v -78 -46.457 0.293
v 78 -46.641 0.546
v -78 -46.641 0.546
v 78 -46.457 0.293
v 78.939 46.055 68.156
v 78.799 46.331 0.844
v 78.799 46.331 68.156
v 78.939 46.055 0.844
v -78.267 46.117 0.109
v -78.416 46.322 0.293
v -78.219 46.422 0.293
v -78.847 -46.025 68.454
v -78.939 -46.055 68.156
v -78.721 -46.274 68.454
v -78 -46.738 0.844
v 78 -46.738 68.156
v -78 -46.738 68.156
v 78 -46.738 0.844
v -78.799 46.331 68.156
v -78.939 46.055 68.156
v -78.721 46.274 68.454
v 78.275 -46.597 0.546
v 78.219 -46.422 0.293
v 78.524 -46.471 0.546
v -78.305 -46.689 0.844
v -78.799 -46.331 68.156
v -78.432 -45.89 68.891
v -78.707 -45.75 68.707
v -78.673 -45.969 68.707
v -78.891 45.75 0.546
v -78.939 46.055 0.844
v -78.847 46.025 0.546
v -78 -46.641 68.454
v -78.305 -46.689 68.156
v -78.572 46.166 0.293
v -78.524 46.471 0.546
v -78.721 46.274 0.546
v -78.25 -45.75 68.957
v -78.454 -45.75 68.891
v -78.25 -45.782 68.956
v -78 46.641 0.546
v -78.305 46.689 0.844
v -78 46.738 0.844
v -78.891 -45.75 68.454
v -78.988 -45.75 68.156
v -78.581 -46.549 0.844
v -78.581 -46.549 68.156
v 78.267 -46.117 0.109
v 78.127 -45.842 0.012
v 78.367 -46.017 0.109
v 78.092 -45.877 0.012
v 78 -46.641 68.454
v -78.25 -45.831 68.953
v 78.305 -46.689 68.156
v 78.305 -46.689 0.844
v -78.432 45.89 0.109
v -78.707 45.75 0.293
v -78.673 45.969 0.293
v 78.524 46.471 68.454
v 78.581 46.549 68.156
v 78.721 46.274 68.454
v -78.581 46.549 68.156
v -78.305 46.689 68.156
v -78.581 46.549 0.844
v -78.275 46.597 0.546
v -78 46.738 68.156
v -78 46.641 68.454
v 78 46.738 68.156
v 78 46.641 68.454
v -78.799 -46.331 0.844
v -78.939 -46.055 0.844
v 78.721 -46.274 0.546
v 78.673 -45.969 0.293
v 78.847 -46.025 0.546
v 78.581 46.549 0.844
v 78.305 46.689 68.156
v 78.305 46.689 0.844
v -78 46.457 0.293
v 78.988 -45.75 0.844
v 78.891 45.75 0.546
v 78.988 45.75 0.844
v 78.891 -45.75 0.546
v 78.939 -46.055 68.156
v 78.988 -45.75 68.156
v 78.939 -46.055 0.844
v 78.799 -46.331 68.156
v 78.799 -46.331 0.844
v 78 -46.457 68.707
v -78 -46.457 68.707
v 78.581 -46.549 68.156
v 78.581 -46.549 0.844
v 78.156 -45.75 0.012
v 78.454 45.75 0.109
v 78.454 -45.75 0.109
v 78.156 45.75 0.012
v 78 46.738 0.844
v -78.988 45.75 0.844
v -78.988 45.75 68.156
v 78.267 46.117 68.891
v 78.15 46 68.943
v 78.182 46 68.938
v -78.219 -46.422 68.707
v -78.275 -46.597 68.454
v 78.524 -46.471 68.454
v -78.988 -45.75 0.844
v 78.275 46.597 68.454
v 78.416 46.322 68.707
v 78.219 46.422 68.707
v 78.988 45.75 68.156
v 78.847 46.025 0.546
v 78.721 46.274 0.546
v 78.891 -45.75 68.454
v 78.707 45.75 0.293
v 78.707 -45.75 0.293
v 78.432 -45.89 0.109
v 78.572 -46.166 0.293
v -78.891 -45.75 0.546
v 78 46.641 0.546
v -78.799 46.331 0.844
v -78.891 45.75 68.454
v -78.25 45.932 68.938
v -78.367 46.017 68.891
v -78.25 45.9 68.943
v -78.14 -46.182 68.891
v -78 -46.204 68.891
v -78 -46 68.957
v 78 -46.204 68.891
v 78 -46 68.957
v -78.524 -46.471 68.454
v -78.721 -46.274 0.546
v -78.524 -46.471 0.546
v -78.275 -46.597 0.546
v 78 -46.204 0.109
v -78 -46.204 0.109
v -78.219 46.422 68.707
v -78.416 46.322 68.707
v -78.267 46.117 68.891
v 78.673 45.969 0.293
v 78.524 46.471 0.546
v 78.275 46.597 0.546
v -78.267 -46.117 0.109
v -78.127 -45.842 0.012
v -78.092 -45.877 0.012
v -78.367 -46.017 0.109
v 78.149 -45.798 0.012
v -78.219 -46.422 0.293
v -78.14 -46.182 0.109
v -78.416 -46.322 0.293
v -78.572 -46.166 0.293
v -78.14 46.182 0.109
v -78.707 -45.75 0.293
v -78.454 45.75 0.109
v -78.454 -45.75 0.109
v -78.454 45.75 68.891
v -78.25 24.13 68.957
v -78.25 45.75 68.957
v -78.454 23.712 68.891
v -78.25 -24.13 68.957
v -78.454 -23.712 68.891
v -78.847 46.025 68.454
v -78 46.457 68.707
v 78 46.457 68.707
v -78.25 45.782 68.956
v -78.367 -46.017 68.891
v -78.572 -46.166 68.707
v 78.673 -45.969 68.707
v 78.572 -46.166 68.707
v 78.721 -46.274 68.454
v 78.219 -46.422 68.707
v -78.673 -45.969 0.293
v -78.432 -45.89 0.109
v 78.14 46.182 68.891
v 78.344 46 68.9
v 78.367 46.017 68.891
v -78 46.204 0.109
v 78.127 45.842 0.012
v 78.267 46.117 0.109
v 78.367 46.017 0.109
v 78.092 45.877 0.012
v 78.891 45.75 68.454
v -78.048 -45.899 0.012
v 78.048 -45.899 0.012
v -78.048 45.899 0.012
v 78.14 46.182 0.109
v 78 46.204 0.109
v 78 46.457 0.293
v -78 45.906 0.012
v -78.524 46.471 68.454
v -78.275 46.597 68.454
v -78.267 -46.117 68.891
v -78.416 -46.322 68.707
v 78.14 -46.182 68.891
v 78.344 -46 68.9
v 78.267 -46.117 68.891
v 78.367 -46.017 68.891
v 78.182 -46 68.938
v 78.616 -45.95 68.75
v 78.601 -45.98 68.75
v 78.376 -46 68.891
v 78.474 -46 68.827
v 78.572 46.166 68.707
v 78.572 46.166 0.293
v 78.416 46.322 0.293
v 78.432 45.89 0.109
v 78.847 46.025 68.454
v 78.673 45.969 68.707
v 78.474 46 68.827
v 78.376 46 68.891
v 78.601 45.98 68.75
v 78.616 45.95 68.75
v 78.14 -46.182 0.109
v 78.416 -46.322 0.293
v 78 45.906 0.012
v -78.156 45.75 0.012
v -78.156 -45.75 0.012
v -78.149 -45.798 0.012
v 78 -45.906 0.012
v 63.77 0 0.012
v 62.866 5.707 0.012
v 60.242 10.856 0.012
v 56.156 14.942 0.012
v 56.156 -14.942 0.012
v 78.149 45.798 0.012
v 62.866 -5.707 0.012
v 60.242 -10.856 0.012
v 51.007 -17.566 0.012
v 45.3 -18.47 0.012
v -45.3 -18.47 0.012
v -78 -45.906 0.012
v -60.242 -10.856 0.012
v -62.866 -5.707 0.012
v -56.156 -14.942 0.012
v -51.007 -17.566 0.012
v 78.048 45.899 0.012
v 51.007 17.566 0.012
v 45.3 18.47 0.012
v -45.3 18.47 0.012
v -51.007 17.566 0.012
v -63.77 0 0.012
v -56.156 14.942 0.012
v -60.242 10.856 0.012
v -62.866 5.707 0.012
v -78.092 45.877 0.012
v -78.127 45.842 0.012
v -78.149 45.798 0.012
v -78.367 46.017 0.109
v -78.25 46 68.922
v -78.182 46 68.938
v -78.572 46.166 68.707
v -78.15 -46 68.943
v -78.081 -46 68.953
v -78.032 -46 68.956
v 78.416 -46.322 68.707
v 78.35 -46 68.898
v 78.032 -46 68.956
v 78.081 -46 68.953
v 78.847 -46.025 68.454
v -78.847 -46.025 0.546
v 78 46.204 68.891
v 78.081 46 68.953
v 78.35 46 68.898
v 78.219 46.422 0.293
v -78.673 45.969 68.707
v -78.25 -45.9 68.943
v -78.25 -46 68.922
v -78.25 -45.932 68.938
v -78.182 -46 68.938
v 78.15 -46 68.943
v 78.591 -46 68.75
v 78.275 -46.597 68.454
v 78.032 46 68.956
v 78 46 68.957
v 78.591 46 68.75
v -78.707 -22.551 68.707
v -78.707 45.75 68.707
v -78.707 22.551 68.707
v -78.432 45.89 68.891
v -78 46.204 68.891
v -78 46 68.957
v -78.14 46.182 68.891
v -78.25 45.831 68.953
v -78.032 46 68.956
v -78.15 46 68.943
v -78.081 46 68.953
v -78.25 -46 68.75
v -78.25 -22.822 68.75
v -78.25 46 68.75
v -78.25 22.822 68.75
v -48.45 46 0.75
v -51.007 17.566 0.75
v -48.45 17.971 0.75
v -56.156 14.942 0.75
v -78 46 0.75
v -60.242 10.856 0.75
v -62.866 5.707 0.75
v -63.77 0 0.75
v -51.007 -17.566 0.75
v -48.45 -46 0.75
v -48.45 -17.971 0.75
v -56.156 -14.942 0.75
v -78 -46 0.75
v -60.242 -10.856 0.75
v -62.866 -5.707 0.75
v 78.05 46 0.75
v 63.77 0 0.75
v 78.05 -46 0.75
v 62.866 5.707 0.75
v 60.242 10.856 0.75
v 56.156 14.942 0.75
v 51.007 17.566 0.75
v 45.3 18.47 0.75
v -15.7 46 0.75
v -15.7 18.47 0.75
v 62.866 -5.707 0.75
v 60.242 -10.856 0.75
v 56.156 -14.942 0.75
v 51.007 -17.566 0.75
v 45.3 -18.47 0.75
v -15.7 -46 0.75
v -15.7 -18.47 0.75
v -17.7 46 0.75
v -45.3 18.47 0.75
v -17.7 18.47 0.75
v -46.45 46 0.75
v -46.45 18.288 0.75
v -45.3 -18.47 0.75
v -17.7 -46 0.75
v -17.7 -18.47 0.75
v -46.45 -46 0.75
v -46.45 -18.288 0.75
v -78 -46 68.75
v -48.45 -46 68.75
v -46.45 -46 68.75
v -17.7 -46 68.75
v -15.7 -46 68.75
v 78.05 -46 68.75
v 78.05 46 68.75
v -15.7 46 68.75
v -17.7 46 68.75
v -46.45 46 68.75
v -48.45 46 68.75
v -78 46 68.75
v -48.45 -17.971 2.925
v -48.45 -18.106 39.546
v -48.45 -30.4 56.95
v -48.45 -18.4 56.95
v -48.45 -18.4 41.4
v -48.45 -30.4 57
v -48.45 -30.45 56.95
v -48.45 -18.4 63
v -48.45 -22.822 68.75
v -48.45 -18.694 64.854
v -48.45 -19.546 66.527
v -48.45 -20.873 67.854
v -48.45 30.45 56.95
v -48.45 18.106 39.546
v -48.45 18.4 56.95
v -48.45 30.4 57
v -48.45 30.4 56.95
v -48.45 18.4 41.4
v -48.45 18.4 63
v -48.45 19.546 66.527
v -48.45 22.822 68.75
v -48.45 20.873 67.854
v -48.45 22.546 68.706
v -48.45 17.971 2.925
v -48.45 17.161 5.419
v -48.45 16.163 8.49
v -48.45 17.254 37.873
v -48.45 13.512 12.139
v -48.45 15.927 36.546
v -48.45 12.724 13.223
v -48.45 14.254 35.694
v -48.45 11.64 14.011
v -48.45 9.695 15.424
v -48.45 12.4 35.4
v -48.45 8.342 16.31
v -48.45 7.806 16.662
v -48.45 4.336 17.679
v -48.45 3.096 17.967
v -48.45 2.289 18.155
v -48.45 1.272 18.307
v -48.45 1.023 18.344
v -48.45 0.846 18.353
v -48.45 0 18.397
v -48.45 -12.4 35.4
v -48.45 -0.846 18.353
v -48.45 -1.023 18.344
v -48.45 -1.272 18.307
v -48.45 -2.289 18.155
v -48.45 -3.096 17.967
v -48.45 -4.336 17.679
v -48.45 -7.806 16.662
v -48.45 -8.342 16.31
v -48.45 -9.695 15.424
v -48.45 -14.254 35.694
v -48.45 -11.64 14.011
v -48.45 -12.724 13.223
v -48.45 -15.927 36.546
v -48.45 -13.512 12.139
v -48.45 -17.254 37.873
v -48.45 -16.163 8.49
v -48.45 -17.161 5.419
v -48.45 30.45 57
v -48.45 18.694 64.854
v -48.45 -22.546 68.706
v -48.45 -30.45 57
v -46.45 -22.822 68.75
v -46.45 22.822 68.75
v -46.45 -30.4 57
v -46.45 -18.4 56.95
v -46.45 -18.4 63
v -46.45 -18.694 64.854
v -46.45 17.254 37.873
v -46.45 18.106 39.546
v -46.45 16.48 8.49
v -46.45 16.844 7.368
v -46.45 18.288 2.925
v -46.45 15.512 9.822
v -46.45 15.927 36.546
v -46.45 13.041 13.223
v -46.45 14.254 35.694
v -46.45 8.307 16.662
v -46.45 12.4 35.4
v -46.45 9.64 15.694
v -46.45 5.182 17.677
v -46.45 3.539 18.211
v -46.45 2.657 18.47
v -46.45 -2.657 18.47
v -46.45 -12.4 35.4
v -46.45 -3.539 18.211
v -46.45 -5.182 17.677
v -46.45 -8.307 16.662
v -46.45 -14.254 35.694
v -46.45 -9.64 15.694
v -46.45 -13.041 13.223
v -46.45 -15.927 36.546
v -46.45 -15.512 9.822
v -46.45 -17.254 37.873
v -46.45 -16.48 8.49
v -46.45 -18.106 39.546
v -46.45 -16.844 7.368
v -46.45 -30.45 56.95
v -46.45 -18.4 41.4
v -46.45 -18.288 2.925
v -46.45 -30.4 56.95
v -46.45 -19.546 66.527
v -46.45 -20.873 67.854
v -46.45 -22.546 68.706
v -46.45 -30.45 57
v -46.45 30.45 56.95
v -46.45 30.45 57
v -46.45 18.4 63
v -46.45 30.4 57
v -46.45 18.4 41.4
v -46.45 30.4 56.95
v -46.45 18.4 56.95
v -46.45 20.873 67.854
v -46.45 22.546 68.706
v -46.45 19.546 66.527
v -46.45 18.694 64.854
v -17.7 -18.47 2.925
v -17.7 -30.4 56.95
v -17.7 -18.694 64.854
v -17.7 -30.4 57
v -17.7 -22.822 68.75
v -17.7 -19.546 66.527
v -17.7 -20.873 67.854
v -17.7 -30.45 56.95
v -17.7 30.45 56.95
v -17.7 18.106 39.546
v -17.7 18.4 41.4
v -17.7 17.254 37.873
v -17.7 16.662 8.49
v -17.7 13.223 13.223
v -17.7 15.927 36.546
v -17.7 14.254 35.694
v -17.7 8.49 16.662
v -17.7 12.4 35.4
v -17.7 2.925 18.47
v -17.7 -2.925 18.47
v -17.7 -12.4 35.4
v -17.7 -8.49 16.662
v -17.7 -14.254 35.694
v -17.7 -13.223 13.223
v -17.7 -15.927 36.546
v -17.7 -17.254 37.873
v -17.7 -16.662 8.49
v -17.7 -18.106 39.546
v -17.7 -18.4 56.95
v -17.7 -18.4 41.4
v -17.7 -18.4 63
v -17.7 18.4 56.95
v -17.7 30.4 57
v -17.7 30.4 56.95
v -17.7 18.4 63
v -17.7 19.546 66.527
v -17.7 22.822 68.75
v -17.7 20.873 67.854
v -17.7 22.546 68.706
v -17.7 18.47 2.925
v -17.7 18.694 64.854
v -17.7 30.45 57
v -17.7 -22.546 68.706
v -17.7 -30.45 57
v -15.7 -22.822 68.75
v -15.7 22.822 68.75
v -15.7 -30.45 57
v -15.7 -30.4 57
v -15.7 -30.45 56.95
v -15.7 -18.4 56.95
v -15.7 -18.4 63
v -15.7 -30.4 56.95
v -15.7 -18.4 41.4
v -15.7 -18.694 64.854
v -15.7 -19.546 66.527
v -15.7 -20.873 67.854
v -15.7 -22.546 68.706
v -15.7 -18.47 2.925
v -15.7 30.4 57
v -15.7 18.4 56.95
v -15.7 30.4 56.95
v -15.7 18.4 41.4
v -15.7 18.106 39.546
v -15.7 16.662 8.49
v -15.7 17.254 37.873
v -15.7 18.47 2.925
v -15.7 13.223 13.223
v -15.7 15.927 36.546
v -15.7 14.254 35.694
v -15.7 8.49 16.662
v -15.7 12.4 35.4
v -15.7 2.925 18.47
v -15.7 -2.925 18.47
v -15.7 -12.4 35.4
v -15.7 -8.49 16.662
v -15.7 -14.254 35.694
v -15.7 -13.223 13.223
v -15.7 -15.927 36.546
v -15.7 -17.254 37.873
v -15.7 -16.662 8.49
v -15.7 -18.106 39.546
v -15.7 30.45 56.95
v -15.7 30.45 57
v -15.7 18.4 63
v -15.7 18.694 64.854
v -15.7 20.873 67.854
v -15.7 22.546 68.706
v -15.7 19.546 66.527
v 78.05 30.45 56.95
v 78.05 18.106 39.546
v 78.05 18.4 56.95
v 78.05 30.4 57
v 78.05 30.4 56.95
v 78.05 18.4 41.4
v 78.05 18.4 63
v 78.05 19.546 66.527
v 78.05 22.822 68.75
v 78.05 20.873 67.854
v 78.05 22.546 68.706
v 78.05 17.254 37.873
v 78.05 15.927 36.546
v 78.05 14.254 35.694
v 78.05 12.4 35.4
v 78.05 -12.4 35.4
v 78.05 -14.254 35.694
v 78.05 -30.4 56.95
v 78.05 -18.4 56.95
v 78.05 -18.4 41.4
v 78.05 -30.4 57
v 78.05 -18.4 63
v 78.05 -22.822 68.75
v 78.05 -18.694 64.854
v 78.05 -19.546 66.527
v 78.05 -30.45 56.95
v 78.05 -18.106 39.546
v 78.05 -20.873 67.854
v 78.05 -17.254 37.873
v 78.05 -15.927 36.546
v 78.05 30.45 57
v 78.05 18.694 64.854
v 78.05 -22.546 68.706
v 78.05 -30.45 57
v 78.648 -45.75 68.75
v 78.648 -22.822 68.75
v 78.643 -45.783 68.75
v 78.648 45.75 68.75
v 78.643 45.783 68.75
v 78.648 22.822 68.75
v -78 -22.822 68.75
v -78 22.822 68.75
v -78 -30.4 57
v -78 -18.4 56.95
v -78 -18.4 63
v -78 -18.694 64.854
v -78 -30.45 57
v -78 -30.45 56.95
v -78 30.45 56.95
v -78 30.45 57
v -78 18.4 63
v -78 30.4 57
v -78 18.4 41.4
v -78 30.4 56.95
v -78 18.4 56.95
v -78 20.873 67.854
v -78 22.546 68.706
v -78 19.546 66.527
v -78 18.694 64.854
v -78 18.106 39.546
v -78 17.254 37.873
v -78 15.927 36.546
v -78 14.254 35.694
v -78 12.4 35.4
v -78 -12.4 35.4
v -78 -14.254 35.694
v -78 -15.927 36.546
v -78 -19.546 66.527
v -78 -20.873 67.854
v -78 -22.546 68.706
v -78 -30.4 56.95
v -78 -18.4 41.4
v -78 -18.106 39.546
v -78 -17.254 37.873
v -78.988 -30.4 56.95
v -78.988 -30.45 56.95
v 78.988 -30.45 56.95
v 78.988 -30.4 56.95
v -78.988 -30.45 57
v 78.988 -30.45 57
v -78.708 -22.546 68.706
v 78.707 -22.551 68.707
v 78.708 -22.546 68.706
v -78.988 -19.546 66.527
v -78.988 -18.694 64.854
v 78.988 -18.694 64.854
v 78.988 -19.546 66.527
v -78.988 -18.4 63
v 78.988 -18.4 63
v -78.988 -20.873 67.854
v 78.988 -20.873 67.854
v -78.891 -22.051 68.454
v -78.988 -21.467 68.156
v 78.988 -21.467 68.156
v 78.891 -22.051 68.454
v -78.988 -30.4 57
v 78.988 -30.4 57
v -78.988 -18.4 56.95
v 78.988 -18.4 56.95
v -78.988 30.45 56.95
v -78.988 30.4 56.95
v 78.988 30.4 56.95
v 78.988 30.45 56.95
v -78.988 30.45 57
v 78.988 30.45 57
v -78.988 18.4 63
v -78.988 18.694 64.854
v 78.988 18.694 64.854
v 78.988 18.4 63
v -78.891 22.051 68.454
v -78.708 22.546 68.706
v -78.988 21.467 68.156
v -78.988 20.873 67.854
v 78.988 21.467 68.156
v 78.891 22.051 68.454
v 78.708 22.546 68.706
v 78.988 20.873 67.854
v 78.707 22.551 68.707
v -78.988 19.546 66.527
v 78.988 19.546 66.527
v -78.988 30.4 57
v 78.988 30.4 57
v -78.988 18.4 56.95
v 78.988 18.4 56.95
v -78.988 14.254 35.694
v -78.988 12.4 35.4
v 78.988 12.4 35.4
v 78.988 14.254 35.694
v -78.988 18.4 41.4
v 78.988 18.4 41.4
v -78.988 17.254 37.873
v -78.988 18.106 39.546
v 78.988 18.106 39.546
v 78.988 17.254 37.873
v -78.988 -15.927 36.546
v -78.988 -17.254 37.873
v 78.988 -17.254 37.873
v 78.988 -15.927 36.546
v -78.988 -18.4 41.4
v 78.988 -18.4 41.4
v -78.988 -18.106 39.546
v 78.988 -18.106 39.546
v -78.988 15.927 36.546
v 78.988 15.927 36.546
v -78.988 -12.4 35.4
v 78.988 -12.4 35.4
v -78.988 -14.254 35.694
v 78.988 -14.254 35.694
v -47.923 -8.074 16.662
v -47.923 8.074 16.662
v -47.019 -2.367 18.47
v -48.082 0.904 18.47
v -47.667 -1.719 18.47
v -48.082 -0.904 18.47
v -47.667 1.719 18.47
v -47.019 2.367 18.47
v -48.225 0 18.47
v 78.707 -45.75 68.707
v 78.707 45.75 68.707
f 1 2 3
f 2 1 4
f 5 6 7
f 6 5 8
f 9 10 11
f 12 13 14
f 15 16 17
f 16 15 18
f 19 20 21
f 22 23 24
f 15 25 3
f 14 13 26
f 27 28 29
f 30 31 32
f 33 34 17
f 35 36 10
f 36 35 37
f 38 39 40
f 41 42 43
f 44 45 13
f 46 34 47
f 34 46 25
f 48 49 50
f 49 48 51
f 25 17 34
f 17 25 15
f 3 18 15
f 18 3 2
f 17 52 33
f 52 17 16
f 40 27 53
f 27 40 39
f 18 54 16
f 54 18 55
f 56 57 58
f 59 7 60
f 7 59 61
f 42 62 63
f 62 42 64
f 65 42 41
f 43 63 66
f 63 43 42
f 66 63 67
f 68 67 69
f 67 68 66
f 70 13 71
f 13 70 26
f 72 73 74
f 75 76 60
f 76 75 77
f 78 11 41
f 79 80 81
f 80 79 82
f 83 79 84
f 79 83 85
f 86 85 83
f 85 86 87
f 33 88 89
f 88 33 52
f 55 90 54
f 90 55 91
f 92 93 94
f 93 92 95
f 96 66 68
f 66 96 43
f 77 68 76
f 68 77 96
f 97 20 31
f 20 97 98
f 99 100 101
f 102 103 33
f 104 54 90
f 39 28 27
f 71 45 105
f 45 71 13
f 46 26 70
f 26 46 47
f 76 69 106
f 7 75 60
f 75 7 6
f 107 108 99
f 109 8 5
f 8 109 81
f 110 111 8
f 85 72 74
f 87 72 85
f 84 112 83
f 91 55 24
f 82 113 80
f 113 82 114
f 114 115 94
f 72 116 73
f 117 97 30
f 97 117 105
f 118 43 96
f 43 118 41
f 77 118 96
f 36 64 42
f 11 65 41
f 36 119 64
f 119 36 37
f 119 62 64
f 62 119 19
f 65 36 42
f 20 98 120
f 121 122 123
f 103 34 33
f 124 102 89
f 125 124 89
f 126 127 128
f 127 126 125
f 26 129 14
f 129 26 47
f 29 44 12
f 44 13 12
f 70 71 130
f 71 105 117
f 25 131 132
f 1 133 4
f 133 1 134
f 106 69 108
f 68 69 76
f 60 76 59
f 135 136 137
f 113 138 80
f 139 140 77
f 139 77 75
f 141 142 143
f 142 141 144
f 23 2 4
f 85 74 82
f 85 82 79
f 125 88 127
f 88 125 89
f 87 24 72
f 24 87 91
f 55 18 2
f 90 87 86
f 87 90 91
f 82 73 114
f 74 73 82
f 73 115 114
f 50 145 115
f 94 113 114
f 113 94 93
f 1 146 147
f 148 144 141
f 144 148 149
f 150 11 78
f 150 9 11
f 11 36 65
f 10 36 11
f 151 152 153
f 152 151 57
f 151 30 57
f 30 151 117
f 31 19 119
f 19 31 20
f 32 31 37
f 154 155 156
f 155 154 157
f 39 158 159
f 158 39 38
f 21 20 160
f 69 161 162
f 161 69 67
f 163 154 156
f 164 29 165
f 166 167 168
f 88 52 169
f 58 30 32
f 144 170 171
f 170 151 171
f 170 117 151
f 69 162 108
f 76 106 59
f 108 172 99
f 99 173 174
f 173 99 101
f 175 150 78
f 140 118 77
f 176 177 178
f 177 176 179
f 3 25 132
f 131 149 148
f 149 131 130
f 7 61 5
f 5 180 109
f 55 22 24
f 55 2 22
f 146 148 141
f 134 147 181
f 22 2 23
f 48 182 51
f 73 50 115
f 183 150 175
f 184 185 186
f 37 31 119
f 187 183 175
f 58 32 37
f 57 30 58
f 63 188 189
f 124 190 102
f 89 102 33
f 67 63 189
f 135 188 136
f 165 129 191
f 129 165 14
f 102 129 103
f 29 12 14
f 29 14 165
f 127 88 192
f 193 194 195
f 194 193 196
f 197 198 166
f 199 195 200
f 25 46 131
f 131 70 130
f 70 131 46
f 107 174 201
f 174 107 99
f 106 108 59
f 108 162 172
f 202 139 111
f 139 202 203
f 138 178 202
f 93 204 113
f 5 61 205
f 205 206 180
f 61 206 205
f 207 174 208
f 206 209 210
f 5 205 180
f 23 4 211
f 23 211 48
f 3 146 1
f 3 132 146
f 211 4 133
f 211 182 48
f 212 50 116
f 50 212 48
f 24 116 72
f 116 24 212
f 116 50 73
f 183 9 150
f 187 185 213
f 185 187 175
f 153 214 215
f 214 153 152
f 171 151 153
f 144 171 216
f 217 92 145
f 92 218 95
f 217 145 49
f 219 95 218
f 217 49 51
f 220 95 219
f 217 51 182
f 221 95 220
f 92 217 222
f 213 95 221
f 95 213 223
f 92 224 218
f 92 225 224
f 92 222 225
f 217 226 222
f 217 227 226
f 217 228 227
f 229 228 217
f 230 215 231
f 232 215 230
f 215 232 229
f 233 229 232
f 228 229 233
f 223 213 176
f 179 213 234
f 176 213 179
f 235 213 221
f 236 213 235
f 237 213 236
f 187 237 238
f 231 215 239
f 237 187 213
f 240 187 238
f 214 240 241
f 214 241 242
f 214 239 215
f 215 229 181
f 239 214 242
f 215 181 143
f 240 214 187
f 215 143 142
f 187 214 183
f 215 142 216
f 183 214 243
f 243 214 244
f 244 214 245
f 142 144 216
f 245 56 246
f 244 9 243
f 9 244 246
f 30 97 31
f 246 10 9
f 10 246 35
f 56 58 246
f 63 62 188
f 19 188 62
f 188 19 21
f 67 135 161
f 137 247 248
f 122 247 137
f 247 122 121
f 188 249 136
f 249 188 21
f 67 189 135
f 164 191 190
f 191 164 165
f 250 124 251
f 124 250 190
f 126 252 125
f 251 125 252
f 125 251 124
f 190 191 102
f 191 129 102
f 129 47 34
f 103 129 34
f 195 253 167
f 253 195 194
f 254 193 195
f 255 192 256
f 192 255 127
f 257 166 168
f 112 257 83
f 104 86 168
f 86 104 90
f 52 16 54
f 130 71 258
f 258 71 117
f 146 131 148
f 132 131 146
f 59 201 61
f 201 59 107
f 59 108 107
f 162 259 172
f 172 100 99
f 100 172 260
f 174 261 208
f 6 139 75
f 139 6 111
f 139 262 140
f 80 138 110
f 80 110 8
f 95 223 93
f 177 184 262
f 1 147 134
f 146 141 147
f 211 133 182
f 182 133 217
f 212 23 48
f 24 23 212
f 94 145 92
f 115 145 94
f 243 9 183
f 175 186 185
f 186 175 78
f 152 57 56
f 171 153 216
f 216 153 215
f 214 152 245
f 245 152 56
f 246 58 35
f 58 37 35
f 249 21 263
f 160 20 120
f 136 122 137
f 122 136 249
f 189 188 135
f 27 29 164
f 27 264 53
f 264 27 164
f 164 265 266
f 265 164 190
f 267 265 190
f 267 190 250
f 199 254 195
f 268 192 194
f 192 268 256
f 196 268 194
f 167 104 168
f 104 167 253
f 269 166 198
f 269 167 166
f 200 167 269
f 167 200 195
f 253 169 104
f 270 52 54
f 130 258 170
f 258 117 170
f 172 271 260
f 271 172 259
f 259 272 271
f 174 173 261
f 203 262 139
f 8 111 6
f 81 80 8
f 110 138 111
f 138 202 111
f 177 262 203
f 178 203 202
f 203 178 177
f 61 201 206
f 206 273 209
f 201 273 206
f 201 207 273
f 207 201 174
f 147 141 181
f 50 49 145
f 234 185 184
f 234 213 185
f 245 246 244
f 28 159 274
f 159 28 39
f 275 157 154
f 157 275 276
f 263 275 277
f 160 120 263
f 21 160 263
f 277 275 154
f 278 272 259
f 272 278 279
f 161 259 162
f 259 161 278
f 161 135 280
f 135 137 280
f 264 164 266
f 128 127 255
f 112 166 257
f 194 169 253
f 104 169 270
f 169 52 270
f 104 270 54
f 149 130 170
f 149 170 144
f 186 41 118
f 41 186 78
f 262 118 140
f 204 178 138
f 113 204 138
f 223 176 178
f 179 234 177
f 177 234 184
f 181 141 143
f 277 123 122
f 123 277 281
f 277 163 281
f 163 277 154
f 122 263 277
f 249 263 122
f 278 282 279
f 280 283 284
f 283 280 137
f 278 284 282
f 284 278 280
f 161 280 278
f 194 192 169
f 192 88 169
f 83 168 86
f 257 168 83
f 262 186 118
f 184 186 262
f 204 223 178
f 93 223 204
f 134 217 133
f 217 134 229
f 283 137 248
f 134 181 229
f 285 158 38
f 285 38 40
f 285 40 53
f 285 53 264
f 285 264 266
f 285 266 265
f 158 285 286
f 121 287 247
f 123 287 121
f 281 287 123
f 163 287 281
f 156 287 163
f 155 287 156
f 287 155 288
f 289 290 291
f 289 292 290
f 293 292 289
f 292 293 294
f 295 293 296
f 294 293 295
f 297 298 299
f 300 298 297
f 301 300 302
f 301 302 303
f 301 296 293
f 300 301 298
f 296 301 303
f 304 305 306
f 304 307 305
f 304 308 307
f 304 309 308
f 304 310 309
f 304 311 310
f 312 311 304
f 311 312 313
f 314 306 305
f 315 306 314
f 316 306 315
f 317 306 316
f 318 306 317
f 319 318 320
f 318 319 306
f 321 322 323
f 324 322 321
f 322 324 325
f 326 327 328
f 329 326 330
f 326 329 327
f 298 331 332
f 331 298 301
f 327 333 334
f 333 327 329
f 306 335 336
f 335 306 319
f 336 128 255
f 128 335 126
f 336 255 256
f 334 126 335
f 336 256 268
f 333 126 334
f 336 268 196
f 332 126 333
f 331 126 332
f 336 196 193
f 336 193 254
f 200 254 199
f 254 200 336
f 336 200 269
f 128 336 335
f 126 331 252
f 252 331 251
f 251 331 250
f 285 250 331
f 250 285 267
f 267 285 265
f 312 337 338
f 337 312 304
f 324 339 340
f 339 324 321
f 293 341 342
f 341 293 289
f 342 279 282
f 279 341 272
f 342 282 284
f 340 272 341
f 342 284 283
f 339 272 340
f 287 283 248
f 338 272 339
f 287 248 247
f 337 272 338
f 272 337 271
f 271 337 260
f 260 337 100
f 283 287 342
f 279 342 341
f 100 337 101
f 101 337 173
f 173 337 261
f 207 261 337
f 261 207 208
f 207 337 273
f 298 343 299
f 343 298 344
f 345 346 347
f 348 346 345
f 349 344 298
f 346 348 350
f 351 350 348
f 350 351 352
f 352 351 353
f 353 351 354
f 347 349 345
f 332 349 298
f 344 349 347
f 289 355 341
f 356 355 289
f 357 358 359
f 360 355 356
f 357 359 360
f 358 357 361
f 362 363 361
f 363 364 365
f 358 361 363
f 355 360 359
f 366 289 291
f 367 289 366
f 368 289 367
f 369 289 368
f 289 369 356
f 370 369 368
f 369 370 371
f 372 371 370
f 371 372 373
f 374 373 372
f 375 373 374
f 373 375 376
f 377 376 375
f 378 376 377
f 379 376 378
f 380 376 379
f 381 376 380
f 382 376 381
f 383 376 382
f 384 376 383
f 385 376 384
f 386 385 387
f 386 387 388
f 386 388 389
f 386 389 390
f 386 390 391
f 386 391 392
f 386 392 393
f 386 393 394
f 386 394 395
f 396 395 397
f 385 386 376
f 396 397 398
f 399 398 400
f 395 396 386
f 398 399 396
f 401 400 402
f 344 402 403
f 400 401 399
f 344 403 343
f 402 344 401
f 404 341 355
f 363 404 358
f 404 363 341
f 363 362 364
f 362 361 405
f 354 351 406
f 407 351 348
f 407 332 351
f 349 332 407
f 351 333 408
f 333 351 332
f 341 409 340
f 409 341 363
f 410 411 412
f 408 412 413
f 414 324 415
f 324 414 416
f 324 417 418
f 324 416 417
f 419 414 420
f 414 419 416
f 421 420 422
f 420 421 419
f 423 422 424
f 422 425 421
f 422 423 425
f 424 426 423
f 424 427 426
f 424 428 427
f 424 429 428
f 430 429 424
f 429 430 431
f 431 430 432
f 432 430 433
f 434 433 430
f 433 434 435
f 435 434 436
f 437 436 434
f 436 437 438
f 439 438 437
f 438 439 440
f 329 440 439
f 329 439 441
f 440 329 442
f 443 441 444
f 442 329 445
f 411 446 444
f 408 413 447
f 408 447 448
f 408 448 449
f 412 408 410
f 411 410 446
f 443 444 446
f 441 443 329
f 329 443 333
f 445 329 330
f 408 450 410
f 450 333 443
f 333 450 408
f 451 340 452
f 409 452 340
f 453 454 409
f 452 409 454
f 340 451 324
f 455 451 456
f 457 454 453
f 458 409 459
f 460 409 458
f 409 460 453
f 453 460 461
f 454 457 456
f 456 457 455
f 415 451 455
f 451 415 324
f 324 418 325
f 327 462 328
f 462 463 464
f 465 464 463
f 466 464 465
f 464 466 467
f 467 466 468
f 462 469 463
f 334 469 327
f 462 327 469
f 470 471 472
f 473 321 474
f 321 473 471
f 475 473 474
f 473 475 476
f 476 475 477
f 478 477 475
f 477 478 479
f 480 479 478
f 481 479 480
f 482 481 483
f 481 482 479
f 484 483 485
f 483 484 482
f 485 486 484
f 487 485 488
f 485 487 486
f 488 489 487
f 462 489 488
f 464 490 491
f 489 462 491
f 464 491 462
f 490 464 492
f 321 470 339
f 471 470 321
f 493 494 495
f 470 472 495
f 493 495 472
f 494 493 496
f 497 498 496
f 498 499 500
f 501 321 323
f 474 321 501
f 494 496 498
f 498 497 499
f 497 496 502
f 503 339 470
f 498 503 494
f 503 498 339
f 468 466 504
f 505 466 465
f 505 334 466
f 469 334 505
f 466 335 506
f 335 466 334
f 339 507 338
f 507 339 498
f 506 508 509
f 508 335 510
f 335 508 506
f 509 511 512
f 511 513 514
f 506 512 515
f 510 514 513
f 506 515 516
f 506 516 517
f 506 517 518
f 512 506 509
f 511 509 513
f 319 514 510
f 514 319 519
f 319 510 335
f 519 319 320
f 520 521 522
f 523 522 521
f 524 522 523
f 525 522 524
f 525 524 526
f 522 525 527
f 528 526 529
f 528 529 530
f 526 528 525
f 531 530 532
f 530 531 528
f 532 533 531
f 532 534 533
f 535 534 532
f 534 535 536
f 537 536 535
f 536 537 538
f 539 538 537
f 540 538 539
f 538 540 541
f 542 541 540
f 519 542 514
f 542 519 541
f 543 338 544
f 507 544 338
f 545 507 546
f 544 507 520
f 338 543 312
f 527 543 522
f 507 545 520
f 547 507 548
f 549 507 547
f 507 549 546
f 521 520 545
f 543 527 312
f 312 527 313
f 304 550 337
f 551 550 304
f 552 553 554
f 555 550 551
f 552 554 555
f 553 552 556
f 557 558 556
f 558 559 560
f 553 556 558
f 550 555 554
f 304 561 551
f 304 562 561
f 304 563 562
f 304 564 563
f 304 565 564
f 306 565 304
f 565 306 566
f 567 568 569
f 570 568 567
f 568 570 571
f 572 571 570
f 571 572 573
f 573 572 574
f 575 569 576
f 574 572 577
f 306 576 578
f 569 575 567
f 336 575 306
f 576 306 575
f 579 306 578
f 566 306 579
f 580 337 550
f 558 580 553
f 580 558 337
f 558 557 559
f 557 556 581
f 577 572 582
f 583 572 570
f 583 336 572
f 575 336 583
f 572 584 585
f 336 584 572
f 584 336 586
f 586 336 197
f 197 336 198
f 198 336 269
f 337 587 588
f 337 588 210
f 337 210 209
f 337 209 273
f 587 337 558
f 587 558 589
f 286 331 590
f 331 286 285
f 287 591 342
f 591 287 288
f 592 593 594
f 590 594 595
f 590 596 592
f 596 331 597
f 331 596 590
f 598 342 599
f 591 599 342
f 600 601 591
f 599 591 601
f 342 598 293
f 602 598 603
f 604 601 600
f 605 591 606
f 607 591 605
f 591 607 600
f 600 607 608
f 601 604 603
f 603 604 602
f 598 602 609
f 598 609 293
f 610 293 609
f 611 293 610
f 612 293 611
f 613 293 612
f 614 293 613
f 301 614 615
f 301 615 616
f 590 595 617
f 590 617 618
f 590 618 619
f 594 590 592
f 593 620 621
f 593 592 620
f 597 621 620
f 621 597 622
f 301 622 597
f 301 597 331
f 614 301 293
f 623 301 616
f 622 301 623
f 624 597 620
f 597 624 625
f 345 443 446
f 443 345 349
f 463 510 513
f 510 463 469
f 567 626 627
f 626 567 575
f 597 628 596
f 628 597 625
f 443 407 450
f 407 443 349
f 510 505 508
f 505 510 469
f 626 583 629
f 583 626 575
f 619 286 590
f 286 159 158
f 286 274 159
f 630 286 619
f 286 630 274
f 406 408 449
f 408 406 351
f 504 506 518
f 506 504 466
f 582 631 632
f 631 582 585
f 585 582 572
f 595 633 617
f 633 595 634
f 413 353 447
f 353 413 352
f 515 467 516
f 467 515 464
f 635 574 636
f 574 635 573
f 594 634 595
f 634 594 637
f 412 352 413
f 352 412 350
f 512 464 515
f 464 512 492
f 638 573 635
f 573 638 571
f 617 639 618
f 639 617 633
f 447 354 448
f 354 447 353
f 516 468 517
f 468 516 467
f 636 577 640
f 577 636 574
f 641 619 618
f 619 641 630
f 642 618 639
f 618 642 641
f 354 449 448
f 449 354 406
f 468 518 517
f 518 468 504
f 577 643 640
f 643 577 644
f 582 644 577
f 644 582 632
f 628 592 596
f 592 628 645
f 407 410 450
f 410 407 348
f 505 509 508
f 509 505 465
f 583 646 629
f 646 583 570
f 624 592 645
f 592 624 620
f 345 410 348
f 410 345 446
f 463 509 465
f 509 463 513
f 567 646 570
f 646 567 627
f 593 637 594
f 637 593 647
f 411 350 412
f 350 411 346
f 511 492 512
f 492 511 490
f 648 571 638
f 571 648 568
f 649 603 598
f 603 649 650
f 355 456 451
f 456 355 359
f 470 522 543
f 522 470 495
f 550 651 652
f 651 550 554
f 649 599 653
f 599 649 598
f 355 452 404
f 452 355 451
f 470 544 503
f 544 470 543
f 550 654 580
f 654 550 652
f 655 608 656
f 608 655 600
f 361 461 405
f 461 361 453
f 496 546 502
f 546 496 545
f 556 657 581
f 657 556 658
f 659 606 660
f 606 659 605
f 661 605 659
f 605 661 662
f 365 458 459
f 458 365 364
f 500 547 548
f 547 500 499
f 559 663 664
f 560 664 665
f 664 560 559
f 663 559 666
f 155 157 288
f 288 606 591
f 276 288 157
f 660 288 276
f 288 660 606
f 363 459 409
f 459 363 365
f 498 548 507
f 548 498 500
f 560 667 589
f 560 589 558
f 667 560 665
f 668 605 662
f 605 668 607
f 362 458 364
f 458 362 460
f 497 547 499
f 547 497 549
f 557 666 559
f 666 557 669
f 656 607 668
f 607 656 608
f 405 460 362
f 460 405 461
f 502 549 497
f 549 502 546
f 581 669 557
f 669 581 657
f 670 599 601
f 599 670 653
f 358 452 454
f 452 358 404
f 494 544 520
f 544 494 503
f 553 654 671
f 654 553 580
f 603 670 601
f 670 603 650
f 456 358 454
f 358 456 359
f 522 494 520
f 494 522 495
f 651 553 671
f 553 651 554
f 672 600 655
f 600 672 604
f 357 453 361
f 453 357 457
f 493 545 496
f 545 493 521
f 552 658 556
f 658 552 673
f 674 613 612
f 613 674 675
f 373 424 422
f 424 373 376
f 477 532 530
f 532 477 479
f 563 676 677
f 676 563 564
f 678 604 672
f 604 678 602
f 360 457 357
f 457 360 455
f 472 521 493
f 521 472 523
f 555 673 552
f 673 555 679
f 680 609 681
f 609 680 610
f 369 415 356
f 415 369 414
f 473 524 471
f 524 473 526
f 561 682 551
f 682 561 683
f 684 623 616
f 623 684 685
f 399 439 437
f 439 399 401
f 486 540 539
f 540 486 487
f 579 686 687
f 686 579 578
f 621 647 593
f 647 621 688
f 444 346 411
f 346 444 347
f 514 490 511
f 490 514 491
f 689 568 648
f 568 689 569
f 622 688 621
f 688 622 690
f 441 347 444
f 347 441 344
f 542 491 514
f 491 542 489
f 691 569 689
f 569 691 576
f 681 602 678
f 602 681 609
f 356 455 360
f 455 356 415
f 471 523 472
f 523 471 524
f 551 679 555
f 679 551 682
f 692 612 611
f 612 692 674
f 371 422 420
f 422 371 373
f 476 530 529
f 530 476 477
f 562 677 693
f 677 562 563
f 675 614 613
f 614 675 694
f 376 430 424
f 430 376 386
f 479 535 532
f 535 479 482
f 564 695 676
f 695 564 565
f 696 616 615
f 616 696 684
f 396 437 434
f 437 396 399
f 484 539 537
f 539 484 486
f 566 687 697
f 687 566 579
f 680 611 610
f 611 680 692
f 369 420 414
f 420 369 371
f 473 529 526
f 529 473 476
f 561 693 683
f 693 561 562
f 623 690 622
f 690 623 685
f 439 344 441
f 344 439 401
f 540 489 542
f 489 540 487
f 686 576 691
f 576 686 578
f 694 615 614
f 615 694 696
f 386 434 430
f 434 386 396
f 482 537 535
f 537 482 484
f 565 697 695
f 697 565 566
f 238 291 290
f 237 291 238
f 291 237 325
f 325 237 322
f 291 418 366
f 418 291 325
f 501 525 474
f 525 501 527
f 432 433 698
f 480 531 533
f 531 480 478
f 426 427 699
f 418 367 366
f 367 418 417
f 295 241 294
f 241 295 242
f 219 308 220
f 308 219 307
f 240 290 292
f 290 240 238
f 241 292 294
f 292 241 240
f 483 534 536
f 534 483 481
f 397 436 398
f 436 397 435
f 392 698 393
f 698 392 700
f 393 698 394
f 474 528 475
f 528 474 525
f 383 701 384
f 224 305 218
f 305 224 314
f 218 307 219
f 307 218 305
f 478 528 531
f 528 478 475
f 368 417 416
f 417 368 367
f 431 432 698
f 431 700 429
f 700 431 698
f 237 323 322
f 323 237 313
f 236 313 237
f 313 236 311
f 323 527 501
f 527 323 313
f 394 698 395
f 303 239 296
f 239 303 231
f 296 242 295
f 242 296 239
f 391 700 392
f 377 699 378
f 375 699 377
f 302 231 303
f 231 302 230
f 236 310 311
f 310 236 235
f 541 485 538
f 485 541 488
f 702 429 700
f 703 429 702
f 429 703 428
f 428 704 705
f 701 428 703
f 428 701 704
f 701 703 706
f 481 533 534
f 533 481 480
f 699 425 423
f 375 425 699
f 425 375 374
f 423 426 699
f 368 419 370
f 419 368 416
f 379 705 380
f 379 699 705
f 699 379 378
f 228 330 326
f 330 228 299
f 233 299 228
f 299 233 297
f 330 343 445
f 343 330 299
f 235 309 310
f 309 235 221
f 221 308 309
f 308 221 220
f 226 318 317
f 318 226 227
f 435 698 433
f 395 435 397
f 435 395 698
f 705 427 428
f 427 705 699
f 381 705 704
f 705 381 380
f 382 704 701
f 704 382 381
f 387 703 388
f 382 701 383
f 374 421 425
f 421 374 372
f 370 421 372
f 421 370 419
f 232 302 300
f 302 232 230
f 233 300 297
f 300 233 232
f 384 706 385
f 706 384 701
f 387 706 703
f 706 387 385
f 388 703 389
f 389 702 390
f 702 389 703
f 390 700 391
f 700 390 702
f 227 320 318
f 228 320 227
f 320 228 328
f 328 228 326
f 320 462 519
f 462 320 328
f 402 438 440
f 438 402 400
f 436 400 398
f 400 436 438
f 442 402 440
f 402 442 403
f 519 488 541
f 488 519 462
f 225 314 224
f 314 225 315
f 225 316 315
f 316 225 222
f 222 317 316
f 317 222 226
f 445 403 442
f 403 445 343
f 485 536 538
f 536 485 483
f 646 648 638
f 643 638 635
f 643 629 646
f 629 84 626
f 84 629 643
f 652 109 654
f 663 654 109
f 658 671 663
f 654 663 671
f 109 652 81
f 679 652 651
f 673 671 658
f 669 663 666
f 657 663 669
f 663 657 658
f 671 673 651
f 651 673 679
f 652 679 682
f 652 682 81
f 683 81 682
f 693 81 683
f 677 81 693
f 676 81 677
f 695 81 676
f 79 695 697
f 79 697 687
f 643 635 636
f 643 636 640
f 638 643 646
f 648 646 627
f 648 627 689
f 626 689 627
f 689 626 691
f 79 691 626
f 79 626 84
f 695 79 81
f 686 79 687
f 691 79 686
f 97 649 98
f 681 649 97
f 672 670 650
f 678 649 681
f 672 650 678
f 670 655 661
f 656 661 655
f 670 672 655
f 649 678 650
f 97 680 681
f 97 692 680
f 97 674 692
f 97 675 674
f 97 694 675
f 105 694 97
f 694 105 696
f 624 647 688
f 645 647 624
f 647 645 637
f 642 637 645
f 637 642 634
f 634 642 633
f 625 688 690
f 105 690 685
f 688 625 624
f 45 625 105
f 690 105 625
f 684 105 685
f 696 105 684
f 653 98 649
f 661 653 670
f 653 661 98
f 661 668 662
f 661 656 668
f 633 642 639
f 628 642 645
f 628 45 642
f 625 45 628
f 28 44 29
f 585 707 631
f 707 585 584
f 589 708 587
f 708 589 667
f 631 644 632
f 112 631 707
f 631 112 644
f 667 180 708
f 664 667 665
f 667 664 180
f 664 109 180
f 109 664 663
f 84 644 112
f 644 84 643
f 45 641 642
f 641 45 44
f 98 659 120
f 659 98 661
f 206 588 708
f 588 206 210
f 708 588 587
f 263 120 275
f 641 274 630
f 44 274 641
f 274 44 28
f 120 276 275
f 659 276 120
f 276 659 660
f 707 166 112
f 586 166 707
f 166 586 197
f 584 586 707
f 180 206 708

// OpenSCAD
// Width of a single card
CardWidth = 92;    

// Height of a single card
CardHeight = 68;  

// Box Height
BoxHeight = 69; 

// Size of each Card slot
Slots = [30, 30, 95];

// Number of rows of cards
Rows = 1;

// Slant the front of the box 
SlantFront = true;

// Labels for each card slot  (only recommended when Rows=1)
Labels = [];

// Size of botton cutout, % of width
Removal = 0.4;
AccessDepth = 0.4;

// Wall Thickness
gWT = 0.75;

// Roundness
$fn = 20;

function SumList(list, start, end) = (start == end) ? list[start] : list[start] + SumList(list, start+1, end);

module RCube(x,y,z,ipR=4) {
    translate([-x/2,-y/2,0]) hull(){
      translate([ipR,ipR,ipR]) sphere(ipR);
      translate([x-ipR,ipR,ipR]) sphere(ipR);
      translate([ipR,y-ipR,ipR]) sphere(ipR);
      translate([x-ipR,y-ipR,ipR]) sphere(ipR);
      translate([ipR,ipR,z-ipR]) sphere(ipR);
      translate([x-ipR,ipR,z-ipR]) sphere(ipR);
      translate([ipR,y-ipR,z-ipR]) sphere(ipR);
      translate([x-ipR,y-ipR,z-ipR]) sphere(ipR);
      }  
} 



Angle = (((BoxHeight-gWT)/CardHeight) < 1) ? acos((BoxHeight-gWT)/CardHeight) : 0;
  
//Wall space for tilted wall
gWS =  gWT / cos(Angle);
BoxWidth = CardWidth + 2*gWT;

SlotsAdj = [for (i = [0:len(Slots)-1]) Slots[i]/cos(Angle)];
ExtraLength = CardHeight * sin(Angle);
BoxLength = SumList(SlotsAdj,0,len(SlotsAdj)-1) + ExtraLength + (len(Slots)-1) * gWS+ 2*gWT;
RailPlace = [for (i = [0:len(Slots)-1]) gWT-BoxLength/2+SumList(SlotsAdj,0,i)+gWS*i ];
LabelPlace = [for (i = [0:len(Slots)-1])  (i == 0) ? ((-BoxLength/2)+RailPlace[0])/2 + ExtraLength : (RailPlace[i-1] + RailPlace[i])/2 + ExtraLength];
    


// final dimensions 
echo(BoxLength,BoxWidth, Angle);

//  Main Box
module Box() {
   intersection() 
   {
     RCube(BoxLength,BoxWidth,BoxHeight, 1);  
     difference() 
     {  
        union() 
        { 
           difference() 
           {    
              RCube(BoxLength,BoxWidth,BoxHeight, 1);
                   
              // Hallow out the box  
              translate([gWT/2,0,BoxHeight/2+gWT]) cube([BoxLength-gWT,BoxWidth-2*gWT,BoxHeight], center=true);
                   
              // Add the names to both sides
              for(x=[0:len(Slots)-1]) {      
                    translate ([LabelPlace[x],-BoxWidth/2+0.4,BoxHeight-gWT])rotate([90,0,0]) linear_extrude(0.4) text(Labels[x], size = 4, spacing = 0.9, direction = "ttb",  font="Helvetica:style=Bold");
                    translate ([LabelPlace[x],BoxWidth/2-0.4,BoxHeight-gWT])rotate([90,0,180]) linear_extrude(5) text(Labels[x], size = 4, spacing = 0.9, direction = "ttb",  font="Helvetica:style=Bold");
                 }  // end For
           }  // shell of box
              
           // add the dividers  
           for(x=[0:len(Slots)-1]) {  
              translate([RailPlace[x]-0.2,0,gWT-CardHeight/2])  translate([1,0,CardHeight/2]) rotate([0,Angle,0]) translate([0,0,CardHeight/2]) cube([2, CardWidth, CardHeight],center=true);
           }
               
           // Add new front if configured
           if (SlantFront)
           {
               translate([-BoxLength/2,0,gWT]) rotate([0,Angle,0]) translate([0,0,CardHeight/2]) cube([2, CardWidth, CardHeight],center=true);        
           } 
        } // End the union after here is substraction
              
        // create gap at top to access the cards
        AccessWidth = CardWidth * 0.4;
        hull(){
            translate([0,-AccessWidth/2+6,BoxHeight+10]) rotate([0,90,0])cylinder(r=6,h=BoxLength,center=true);;
            translate([0,AccessWidth/2-6,BoxHeight+10]) rotate([0,90,0])cylinder(r=6,h=BoxLength,center=true);;
            translate([0,-AccessWidth/2+6,BoxHeight*(1-AccessDepth)])rotate([0,90,0])cylinder(r=6,h=BoxLength,center=true);;
            translate([0,AccessWidth/2-6,BoxHeight*(1-AccessDepth)])rotate([0,90,0])cylinder(r=6,h=BoxLength,center=true);;
        } // hull
         
            translate([0,-AccessWidth/2-6,BoxHeight-6])difference(){
               cube([BoxLength,12.1,12.1], center = true);
               rotate([0,90,0])cylinder(r=6,h=BoxLength,center=true);
                translate([0,-6,0])cube([BoxLength,12,12], center = true);
                translate([0,0,-6])cube([BoxLength,12,12], center = true);
            }
           translate([0,+AccessWidth/2+6,BoxHeight-6]) difference(){
               cube([BoxLength,12.1,12.1], center = true);
               rotate([0,90,0])cylinder(r=6,h=BoxLength,center=true);
                translate([0,6,0])cube([BoxLength,12,12], center = true);
                translate([0,0,-6])cube([BoxLength,12,12], center = true);
            }
//           rotate([0,90,0]) triangle(6, 6, BoxLength+10, center = true);
            
        
        

        // Remove some from the bottem to reduce plastic
        hull() {
            translate([BoxLength/2-(BoxWidth*Removal/2)-15,0,0]) sphere(r=(BoxWidth*Removal)/2);
            translate([-BoxLength/2+(BoxWidth*Removal/2)+15,0,0]) sphere (r=(BoxWidth*Removal)/2);
        }
           
        // If we have the slanted front remove part of the box
        if (SlantFront)
        {
           hull() { 
             translate([-BoxLength/2-200,0,gWT]) rotate([0,Angle,0]) translate([0,0,CardHeight/2]) cube([2, CardWidth+10, CardHeight+2*gWT],center=true);
             translate([-BoxLength/2-2,0,gWT]) rotate([0,Angle,0]) translate([0,0,CardHeight/2]) cube([2, CardWidth+10, CardHeight+2*gWT],center=true);
              }
        } // end slant
      } // end diff
   }  // Instersection
}

for(i=[0:Rows-1]) { translate([0,i * (BoxWidth-gWT),0]) Box(); }
